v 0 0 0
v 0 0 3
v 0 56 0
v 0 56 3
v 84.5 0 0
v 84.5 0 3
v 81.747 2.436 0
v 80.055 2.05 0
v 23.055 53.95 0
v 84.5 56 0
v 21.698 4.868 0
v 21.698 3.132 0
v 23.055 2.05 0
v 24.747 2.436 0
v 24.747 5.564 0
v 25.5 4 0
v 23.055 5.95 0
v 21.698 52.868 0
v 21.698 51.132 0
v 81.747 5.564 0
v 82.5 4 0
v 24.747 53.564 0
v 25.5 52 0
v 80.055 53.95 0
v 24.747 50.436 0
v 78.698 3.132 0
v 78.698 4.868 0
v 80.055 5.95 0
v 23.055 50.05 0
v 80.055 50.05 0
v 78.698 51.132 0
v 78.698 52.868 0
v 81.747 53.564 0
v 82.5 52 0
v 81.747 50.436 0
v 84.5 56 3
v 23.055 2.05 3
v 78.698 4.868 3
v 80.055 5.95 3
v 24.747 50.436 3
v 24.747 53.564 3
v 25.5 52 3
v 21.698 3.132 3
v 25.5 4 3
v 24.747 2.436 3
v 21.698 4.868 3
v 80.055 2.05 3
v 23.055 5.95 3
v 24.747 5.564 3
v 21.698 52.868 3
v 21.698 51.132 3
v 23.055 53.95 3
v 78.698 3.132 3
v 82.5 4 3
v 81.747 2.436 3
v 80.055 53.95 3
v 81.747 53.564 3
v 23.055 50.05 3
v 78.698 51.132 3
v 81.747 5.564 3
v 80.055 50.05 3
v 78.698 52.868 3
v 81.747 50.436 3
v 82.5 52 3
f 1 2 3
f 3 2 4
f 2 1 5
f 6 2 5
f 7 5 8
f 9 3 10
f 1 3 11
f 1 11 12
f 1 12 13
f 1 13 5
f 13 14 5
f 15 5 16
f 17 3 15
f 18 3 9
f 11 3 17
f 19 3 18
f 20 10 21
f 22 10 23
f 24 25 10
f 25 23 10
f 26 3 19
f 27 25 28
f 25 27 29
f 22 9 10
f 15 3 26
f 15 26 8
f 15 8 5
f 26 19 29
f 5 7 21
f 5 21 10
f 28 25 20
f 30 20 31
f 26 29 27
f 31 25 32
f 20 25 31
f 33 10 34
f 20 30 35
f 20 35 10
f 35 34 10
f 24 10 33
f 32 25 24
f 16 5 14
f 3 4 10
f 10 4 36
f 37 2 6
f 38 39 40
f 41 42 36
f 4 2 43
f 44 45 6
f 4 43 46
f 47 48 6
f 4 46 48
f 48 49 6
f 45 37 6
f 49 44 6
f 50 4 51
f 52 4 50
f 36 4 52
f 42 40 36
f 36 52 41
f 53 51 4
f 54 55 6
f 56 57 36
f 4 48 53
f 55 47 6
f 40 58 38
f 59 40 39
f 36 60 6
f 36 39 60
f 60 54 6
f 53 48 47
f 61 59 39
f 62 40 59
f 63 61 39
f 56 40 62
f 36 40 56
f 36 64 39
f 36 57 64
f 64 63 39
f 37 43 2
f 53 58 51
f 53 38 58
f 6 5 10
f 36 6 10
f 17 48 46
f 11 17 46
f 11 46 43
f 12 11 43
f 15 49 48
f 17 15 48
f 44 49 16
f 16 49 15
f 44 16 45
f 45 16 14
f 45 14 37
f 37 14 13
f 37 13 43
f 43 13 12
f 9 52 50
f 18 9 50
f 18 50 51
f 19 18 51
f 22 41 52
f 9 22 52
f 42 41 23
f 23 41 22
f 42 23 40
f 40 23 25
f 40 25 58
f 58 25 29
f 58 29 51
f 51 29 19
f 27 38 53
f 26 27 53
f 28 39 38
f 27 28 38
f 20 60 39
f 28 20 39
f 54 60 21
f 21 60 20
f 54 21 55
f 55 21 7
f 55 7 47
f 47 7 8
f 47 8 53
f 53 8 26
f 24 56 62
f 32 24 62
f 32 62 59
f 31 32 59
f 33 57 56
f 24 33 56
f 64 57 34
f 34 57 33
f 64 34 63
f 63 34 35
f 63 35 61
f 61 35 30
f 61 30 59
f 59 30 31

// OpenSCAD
pared = 3;
raspW = 84.5;
raspH = 56;


//Tornillos
raspTor = 1+1;
raspTorCeja = 4;
x1 = 23.5;
y1 = raspTorCeja;
x2 = x1;
y2 = raspH-raspTorCeja;
x3 = raspW-raspTorCeja;
y3 = raspTorCeja;
x4 = x3;
y4 = raspH-raspTorCeja;



difference()
{
cube([raspW,raspH,pared]);
raspTornillos();
}










module raspTornillos()
{
	translate([x1,y1,-0.1])
	cylinder(r=raspTor,(pared*2));

	translate([x2,y2,-0.1])
	cylinder(r=raspTor,(pared*2));

	translate([x3,y3,-0.1])
	cylinder(r=raspTor,(pared*2));

	translate([x4,y4,-0.1])
	cylinder(r=raspTor,(pared*2));
}
